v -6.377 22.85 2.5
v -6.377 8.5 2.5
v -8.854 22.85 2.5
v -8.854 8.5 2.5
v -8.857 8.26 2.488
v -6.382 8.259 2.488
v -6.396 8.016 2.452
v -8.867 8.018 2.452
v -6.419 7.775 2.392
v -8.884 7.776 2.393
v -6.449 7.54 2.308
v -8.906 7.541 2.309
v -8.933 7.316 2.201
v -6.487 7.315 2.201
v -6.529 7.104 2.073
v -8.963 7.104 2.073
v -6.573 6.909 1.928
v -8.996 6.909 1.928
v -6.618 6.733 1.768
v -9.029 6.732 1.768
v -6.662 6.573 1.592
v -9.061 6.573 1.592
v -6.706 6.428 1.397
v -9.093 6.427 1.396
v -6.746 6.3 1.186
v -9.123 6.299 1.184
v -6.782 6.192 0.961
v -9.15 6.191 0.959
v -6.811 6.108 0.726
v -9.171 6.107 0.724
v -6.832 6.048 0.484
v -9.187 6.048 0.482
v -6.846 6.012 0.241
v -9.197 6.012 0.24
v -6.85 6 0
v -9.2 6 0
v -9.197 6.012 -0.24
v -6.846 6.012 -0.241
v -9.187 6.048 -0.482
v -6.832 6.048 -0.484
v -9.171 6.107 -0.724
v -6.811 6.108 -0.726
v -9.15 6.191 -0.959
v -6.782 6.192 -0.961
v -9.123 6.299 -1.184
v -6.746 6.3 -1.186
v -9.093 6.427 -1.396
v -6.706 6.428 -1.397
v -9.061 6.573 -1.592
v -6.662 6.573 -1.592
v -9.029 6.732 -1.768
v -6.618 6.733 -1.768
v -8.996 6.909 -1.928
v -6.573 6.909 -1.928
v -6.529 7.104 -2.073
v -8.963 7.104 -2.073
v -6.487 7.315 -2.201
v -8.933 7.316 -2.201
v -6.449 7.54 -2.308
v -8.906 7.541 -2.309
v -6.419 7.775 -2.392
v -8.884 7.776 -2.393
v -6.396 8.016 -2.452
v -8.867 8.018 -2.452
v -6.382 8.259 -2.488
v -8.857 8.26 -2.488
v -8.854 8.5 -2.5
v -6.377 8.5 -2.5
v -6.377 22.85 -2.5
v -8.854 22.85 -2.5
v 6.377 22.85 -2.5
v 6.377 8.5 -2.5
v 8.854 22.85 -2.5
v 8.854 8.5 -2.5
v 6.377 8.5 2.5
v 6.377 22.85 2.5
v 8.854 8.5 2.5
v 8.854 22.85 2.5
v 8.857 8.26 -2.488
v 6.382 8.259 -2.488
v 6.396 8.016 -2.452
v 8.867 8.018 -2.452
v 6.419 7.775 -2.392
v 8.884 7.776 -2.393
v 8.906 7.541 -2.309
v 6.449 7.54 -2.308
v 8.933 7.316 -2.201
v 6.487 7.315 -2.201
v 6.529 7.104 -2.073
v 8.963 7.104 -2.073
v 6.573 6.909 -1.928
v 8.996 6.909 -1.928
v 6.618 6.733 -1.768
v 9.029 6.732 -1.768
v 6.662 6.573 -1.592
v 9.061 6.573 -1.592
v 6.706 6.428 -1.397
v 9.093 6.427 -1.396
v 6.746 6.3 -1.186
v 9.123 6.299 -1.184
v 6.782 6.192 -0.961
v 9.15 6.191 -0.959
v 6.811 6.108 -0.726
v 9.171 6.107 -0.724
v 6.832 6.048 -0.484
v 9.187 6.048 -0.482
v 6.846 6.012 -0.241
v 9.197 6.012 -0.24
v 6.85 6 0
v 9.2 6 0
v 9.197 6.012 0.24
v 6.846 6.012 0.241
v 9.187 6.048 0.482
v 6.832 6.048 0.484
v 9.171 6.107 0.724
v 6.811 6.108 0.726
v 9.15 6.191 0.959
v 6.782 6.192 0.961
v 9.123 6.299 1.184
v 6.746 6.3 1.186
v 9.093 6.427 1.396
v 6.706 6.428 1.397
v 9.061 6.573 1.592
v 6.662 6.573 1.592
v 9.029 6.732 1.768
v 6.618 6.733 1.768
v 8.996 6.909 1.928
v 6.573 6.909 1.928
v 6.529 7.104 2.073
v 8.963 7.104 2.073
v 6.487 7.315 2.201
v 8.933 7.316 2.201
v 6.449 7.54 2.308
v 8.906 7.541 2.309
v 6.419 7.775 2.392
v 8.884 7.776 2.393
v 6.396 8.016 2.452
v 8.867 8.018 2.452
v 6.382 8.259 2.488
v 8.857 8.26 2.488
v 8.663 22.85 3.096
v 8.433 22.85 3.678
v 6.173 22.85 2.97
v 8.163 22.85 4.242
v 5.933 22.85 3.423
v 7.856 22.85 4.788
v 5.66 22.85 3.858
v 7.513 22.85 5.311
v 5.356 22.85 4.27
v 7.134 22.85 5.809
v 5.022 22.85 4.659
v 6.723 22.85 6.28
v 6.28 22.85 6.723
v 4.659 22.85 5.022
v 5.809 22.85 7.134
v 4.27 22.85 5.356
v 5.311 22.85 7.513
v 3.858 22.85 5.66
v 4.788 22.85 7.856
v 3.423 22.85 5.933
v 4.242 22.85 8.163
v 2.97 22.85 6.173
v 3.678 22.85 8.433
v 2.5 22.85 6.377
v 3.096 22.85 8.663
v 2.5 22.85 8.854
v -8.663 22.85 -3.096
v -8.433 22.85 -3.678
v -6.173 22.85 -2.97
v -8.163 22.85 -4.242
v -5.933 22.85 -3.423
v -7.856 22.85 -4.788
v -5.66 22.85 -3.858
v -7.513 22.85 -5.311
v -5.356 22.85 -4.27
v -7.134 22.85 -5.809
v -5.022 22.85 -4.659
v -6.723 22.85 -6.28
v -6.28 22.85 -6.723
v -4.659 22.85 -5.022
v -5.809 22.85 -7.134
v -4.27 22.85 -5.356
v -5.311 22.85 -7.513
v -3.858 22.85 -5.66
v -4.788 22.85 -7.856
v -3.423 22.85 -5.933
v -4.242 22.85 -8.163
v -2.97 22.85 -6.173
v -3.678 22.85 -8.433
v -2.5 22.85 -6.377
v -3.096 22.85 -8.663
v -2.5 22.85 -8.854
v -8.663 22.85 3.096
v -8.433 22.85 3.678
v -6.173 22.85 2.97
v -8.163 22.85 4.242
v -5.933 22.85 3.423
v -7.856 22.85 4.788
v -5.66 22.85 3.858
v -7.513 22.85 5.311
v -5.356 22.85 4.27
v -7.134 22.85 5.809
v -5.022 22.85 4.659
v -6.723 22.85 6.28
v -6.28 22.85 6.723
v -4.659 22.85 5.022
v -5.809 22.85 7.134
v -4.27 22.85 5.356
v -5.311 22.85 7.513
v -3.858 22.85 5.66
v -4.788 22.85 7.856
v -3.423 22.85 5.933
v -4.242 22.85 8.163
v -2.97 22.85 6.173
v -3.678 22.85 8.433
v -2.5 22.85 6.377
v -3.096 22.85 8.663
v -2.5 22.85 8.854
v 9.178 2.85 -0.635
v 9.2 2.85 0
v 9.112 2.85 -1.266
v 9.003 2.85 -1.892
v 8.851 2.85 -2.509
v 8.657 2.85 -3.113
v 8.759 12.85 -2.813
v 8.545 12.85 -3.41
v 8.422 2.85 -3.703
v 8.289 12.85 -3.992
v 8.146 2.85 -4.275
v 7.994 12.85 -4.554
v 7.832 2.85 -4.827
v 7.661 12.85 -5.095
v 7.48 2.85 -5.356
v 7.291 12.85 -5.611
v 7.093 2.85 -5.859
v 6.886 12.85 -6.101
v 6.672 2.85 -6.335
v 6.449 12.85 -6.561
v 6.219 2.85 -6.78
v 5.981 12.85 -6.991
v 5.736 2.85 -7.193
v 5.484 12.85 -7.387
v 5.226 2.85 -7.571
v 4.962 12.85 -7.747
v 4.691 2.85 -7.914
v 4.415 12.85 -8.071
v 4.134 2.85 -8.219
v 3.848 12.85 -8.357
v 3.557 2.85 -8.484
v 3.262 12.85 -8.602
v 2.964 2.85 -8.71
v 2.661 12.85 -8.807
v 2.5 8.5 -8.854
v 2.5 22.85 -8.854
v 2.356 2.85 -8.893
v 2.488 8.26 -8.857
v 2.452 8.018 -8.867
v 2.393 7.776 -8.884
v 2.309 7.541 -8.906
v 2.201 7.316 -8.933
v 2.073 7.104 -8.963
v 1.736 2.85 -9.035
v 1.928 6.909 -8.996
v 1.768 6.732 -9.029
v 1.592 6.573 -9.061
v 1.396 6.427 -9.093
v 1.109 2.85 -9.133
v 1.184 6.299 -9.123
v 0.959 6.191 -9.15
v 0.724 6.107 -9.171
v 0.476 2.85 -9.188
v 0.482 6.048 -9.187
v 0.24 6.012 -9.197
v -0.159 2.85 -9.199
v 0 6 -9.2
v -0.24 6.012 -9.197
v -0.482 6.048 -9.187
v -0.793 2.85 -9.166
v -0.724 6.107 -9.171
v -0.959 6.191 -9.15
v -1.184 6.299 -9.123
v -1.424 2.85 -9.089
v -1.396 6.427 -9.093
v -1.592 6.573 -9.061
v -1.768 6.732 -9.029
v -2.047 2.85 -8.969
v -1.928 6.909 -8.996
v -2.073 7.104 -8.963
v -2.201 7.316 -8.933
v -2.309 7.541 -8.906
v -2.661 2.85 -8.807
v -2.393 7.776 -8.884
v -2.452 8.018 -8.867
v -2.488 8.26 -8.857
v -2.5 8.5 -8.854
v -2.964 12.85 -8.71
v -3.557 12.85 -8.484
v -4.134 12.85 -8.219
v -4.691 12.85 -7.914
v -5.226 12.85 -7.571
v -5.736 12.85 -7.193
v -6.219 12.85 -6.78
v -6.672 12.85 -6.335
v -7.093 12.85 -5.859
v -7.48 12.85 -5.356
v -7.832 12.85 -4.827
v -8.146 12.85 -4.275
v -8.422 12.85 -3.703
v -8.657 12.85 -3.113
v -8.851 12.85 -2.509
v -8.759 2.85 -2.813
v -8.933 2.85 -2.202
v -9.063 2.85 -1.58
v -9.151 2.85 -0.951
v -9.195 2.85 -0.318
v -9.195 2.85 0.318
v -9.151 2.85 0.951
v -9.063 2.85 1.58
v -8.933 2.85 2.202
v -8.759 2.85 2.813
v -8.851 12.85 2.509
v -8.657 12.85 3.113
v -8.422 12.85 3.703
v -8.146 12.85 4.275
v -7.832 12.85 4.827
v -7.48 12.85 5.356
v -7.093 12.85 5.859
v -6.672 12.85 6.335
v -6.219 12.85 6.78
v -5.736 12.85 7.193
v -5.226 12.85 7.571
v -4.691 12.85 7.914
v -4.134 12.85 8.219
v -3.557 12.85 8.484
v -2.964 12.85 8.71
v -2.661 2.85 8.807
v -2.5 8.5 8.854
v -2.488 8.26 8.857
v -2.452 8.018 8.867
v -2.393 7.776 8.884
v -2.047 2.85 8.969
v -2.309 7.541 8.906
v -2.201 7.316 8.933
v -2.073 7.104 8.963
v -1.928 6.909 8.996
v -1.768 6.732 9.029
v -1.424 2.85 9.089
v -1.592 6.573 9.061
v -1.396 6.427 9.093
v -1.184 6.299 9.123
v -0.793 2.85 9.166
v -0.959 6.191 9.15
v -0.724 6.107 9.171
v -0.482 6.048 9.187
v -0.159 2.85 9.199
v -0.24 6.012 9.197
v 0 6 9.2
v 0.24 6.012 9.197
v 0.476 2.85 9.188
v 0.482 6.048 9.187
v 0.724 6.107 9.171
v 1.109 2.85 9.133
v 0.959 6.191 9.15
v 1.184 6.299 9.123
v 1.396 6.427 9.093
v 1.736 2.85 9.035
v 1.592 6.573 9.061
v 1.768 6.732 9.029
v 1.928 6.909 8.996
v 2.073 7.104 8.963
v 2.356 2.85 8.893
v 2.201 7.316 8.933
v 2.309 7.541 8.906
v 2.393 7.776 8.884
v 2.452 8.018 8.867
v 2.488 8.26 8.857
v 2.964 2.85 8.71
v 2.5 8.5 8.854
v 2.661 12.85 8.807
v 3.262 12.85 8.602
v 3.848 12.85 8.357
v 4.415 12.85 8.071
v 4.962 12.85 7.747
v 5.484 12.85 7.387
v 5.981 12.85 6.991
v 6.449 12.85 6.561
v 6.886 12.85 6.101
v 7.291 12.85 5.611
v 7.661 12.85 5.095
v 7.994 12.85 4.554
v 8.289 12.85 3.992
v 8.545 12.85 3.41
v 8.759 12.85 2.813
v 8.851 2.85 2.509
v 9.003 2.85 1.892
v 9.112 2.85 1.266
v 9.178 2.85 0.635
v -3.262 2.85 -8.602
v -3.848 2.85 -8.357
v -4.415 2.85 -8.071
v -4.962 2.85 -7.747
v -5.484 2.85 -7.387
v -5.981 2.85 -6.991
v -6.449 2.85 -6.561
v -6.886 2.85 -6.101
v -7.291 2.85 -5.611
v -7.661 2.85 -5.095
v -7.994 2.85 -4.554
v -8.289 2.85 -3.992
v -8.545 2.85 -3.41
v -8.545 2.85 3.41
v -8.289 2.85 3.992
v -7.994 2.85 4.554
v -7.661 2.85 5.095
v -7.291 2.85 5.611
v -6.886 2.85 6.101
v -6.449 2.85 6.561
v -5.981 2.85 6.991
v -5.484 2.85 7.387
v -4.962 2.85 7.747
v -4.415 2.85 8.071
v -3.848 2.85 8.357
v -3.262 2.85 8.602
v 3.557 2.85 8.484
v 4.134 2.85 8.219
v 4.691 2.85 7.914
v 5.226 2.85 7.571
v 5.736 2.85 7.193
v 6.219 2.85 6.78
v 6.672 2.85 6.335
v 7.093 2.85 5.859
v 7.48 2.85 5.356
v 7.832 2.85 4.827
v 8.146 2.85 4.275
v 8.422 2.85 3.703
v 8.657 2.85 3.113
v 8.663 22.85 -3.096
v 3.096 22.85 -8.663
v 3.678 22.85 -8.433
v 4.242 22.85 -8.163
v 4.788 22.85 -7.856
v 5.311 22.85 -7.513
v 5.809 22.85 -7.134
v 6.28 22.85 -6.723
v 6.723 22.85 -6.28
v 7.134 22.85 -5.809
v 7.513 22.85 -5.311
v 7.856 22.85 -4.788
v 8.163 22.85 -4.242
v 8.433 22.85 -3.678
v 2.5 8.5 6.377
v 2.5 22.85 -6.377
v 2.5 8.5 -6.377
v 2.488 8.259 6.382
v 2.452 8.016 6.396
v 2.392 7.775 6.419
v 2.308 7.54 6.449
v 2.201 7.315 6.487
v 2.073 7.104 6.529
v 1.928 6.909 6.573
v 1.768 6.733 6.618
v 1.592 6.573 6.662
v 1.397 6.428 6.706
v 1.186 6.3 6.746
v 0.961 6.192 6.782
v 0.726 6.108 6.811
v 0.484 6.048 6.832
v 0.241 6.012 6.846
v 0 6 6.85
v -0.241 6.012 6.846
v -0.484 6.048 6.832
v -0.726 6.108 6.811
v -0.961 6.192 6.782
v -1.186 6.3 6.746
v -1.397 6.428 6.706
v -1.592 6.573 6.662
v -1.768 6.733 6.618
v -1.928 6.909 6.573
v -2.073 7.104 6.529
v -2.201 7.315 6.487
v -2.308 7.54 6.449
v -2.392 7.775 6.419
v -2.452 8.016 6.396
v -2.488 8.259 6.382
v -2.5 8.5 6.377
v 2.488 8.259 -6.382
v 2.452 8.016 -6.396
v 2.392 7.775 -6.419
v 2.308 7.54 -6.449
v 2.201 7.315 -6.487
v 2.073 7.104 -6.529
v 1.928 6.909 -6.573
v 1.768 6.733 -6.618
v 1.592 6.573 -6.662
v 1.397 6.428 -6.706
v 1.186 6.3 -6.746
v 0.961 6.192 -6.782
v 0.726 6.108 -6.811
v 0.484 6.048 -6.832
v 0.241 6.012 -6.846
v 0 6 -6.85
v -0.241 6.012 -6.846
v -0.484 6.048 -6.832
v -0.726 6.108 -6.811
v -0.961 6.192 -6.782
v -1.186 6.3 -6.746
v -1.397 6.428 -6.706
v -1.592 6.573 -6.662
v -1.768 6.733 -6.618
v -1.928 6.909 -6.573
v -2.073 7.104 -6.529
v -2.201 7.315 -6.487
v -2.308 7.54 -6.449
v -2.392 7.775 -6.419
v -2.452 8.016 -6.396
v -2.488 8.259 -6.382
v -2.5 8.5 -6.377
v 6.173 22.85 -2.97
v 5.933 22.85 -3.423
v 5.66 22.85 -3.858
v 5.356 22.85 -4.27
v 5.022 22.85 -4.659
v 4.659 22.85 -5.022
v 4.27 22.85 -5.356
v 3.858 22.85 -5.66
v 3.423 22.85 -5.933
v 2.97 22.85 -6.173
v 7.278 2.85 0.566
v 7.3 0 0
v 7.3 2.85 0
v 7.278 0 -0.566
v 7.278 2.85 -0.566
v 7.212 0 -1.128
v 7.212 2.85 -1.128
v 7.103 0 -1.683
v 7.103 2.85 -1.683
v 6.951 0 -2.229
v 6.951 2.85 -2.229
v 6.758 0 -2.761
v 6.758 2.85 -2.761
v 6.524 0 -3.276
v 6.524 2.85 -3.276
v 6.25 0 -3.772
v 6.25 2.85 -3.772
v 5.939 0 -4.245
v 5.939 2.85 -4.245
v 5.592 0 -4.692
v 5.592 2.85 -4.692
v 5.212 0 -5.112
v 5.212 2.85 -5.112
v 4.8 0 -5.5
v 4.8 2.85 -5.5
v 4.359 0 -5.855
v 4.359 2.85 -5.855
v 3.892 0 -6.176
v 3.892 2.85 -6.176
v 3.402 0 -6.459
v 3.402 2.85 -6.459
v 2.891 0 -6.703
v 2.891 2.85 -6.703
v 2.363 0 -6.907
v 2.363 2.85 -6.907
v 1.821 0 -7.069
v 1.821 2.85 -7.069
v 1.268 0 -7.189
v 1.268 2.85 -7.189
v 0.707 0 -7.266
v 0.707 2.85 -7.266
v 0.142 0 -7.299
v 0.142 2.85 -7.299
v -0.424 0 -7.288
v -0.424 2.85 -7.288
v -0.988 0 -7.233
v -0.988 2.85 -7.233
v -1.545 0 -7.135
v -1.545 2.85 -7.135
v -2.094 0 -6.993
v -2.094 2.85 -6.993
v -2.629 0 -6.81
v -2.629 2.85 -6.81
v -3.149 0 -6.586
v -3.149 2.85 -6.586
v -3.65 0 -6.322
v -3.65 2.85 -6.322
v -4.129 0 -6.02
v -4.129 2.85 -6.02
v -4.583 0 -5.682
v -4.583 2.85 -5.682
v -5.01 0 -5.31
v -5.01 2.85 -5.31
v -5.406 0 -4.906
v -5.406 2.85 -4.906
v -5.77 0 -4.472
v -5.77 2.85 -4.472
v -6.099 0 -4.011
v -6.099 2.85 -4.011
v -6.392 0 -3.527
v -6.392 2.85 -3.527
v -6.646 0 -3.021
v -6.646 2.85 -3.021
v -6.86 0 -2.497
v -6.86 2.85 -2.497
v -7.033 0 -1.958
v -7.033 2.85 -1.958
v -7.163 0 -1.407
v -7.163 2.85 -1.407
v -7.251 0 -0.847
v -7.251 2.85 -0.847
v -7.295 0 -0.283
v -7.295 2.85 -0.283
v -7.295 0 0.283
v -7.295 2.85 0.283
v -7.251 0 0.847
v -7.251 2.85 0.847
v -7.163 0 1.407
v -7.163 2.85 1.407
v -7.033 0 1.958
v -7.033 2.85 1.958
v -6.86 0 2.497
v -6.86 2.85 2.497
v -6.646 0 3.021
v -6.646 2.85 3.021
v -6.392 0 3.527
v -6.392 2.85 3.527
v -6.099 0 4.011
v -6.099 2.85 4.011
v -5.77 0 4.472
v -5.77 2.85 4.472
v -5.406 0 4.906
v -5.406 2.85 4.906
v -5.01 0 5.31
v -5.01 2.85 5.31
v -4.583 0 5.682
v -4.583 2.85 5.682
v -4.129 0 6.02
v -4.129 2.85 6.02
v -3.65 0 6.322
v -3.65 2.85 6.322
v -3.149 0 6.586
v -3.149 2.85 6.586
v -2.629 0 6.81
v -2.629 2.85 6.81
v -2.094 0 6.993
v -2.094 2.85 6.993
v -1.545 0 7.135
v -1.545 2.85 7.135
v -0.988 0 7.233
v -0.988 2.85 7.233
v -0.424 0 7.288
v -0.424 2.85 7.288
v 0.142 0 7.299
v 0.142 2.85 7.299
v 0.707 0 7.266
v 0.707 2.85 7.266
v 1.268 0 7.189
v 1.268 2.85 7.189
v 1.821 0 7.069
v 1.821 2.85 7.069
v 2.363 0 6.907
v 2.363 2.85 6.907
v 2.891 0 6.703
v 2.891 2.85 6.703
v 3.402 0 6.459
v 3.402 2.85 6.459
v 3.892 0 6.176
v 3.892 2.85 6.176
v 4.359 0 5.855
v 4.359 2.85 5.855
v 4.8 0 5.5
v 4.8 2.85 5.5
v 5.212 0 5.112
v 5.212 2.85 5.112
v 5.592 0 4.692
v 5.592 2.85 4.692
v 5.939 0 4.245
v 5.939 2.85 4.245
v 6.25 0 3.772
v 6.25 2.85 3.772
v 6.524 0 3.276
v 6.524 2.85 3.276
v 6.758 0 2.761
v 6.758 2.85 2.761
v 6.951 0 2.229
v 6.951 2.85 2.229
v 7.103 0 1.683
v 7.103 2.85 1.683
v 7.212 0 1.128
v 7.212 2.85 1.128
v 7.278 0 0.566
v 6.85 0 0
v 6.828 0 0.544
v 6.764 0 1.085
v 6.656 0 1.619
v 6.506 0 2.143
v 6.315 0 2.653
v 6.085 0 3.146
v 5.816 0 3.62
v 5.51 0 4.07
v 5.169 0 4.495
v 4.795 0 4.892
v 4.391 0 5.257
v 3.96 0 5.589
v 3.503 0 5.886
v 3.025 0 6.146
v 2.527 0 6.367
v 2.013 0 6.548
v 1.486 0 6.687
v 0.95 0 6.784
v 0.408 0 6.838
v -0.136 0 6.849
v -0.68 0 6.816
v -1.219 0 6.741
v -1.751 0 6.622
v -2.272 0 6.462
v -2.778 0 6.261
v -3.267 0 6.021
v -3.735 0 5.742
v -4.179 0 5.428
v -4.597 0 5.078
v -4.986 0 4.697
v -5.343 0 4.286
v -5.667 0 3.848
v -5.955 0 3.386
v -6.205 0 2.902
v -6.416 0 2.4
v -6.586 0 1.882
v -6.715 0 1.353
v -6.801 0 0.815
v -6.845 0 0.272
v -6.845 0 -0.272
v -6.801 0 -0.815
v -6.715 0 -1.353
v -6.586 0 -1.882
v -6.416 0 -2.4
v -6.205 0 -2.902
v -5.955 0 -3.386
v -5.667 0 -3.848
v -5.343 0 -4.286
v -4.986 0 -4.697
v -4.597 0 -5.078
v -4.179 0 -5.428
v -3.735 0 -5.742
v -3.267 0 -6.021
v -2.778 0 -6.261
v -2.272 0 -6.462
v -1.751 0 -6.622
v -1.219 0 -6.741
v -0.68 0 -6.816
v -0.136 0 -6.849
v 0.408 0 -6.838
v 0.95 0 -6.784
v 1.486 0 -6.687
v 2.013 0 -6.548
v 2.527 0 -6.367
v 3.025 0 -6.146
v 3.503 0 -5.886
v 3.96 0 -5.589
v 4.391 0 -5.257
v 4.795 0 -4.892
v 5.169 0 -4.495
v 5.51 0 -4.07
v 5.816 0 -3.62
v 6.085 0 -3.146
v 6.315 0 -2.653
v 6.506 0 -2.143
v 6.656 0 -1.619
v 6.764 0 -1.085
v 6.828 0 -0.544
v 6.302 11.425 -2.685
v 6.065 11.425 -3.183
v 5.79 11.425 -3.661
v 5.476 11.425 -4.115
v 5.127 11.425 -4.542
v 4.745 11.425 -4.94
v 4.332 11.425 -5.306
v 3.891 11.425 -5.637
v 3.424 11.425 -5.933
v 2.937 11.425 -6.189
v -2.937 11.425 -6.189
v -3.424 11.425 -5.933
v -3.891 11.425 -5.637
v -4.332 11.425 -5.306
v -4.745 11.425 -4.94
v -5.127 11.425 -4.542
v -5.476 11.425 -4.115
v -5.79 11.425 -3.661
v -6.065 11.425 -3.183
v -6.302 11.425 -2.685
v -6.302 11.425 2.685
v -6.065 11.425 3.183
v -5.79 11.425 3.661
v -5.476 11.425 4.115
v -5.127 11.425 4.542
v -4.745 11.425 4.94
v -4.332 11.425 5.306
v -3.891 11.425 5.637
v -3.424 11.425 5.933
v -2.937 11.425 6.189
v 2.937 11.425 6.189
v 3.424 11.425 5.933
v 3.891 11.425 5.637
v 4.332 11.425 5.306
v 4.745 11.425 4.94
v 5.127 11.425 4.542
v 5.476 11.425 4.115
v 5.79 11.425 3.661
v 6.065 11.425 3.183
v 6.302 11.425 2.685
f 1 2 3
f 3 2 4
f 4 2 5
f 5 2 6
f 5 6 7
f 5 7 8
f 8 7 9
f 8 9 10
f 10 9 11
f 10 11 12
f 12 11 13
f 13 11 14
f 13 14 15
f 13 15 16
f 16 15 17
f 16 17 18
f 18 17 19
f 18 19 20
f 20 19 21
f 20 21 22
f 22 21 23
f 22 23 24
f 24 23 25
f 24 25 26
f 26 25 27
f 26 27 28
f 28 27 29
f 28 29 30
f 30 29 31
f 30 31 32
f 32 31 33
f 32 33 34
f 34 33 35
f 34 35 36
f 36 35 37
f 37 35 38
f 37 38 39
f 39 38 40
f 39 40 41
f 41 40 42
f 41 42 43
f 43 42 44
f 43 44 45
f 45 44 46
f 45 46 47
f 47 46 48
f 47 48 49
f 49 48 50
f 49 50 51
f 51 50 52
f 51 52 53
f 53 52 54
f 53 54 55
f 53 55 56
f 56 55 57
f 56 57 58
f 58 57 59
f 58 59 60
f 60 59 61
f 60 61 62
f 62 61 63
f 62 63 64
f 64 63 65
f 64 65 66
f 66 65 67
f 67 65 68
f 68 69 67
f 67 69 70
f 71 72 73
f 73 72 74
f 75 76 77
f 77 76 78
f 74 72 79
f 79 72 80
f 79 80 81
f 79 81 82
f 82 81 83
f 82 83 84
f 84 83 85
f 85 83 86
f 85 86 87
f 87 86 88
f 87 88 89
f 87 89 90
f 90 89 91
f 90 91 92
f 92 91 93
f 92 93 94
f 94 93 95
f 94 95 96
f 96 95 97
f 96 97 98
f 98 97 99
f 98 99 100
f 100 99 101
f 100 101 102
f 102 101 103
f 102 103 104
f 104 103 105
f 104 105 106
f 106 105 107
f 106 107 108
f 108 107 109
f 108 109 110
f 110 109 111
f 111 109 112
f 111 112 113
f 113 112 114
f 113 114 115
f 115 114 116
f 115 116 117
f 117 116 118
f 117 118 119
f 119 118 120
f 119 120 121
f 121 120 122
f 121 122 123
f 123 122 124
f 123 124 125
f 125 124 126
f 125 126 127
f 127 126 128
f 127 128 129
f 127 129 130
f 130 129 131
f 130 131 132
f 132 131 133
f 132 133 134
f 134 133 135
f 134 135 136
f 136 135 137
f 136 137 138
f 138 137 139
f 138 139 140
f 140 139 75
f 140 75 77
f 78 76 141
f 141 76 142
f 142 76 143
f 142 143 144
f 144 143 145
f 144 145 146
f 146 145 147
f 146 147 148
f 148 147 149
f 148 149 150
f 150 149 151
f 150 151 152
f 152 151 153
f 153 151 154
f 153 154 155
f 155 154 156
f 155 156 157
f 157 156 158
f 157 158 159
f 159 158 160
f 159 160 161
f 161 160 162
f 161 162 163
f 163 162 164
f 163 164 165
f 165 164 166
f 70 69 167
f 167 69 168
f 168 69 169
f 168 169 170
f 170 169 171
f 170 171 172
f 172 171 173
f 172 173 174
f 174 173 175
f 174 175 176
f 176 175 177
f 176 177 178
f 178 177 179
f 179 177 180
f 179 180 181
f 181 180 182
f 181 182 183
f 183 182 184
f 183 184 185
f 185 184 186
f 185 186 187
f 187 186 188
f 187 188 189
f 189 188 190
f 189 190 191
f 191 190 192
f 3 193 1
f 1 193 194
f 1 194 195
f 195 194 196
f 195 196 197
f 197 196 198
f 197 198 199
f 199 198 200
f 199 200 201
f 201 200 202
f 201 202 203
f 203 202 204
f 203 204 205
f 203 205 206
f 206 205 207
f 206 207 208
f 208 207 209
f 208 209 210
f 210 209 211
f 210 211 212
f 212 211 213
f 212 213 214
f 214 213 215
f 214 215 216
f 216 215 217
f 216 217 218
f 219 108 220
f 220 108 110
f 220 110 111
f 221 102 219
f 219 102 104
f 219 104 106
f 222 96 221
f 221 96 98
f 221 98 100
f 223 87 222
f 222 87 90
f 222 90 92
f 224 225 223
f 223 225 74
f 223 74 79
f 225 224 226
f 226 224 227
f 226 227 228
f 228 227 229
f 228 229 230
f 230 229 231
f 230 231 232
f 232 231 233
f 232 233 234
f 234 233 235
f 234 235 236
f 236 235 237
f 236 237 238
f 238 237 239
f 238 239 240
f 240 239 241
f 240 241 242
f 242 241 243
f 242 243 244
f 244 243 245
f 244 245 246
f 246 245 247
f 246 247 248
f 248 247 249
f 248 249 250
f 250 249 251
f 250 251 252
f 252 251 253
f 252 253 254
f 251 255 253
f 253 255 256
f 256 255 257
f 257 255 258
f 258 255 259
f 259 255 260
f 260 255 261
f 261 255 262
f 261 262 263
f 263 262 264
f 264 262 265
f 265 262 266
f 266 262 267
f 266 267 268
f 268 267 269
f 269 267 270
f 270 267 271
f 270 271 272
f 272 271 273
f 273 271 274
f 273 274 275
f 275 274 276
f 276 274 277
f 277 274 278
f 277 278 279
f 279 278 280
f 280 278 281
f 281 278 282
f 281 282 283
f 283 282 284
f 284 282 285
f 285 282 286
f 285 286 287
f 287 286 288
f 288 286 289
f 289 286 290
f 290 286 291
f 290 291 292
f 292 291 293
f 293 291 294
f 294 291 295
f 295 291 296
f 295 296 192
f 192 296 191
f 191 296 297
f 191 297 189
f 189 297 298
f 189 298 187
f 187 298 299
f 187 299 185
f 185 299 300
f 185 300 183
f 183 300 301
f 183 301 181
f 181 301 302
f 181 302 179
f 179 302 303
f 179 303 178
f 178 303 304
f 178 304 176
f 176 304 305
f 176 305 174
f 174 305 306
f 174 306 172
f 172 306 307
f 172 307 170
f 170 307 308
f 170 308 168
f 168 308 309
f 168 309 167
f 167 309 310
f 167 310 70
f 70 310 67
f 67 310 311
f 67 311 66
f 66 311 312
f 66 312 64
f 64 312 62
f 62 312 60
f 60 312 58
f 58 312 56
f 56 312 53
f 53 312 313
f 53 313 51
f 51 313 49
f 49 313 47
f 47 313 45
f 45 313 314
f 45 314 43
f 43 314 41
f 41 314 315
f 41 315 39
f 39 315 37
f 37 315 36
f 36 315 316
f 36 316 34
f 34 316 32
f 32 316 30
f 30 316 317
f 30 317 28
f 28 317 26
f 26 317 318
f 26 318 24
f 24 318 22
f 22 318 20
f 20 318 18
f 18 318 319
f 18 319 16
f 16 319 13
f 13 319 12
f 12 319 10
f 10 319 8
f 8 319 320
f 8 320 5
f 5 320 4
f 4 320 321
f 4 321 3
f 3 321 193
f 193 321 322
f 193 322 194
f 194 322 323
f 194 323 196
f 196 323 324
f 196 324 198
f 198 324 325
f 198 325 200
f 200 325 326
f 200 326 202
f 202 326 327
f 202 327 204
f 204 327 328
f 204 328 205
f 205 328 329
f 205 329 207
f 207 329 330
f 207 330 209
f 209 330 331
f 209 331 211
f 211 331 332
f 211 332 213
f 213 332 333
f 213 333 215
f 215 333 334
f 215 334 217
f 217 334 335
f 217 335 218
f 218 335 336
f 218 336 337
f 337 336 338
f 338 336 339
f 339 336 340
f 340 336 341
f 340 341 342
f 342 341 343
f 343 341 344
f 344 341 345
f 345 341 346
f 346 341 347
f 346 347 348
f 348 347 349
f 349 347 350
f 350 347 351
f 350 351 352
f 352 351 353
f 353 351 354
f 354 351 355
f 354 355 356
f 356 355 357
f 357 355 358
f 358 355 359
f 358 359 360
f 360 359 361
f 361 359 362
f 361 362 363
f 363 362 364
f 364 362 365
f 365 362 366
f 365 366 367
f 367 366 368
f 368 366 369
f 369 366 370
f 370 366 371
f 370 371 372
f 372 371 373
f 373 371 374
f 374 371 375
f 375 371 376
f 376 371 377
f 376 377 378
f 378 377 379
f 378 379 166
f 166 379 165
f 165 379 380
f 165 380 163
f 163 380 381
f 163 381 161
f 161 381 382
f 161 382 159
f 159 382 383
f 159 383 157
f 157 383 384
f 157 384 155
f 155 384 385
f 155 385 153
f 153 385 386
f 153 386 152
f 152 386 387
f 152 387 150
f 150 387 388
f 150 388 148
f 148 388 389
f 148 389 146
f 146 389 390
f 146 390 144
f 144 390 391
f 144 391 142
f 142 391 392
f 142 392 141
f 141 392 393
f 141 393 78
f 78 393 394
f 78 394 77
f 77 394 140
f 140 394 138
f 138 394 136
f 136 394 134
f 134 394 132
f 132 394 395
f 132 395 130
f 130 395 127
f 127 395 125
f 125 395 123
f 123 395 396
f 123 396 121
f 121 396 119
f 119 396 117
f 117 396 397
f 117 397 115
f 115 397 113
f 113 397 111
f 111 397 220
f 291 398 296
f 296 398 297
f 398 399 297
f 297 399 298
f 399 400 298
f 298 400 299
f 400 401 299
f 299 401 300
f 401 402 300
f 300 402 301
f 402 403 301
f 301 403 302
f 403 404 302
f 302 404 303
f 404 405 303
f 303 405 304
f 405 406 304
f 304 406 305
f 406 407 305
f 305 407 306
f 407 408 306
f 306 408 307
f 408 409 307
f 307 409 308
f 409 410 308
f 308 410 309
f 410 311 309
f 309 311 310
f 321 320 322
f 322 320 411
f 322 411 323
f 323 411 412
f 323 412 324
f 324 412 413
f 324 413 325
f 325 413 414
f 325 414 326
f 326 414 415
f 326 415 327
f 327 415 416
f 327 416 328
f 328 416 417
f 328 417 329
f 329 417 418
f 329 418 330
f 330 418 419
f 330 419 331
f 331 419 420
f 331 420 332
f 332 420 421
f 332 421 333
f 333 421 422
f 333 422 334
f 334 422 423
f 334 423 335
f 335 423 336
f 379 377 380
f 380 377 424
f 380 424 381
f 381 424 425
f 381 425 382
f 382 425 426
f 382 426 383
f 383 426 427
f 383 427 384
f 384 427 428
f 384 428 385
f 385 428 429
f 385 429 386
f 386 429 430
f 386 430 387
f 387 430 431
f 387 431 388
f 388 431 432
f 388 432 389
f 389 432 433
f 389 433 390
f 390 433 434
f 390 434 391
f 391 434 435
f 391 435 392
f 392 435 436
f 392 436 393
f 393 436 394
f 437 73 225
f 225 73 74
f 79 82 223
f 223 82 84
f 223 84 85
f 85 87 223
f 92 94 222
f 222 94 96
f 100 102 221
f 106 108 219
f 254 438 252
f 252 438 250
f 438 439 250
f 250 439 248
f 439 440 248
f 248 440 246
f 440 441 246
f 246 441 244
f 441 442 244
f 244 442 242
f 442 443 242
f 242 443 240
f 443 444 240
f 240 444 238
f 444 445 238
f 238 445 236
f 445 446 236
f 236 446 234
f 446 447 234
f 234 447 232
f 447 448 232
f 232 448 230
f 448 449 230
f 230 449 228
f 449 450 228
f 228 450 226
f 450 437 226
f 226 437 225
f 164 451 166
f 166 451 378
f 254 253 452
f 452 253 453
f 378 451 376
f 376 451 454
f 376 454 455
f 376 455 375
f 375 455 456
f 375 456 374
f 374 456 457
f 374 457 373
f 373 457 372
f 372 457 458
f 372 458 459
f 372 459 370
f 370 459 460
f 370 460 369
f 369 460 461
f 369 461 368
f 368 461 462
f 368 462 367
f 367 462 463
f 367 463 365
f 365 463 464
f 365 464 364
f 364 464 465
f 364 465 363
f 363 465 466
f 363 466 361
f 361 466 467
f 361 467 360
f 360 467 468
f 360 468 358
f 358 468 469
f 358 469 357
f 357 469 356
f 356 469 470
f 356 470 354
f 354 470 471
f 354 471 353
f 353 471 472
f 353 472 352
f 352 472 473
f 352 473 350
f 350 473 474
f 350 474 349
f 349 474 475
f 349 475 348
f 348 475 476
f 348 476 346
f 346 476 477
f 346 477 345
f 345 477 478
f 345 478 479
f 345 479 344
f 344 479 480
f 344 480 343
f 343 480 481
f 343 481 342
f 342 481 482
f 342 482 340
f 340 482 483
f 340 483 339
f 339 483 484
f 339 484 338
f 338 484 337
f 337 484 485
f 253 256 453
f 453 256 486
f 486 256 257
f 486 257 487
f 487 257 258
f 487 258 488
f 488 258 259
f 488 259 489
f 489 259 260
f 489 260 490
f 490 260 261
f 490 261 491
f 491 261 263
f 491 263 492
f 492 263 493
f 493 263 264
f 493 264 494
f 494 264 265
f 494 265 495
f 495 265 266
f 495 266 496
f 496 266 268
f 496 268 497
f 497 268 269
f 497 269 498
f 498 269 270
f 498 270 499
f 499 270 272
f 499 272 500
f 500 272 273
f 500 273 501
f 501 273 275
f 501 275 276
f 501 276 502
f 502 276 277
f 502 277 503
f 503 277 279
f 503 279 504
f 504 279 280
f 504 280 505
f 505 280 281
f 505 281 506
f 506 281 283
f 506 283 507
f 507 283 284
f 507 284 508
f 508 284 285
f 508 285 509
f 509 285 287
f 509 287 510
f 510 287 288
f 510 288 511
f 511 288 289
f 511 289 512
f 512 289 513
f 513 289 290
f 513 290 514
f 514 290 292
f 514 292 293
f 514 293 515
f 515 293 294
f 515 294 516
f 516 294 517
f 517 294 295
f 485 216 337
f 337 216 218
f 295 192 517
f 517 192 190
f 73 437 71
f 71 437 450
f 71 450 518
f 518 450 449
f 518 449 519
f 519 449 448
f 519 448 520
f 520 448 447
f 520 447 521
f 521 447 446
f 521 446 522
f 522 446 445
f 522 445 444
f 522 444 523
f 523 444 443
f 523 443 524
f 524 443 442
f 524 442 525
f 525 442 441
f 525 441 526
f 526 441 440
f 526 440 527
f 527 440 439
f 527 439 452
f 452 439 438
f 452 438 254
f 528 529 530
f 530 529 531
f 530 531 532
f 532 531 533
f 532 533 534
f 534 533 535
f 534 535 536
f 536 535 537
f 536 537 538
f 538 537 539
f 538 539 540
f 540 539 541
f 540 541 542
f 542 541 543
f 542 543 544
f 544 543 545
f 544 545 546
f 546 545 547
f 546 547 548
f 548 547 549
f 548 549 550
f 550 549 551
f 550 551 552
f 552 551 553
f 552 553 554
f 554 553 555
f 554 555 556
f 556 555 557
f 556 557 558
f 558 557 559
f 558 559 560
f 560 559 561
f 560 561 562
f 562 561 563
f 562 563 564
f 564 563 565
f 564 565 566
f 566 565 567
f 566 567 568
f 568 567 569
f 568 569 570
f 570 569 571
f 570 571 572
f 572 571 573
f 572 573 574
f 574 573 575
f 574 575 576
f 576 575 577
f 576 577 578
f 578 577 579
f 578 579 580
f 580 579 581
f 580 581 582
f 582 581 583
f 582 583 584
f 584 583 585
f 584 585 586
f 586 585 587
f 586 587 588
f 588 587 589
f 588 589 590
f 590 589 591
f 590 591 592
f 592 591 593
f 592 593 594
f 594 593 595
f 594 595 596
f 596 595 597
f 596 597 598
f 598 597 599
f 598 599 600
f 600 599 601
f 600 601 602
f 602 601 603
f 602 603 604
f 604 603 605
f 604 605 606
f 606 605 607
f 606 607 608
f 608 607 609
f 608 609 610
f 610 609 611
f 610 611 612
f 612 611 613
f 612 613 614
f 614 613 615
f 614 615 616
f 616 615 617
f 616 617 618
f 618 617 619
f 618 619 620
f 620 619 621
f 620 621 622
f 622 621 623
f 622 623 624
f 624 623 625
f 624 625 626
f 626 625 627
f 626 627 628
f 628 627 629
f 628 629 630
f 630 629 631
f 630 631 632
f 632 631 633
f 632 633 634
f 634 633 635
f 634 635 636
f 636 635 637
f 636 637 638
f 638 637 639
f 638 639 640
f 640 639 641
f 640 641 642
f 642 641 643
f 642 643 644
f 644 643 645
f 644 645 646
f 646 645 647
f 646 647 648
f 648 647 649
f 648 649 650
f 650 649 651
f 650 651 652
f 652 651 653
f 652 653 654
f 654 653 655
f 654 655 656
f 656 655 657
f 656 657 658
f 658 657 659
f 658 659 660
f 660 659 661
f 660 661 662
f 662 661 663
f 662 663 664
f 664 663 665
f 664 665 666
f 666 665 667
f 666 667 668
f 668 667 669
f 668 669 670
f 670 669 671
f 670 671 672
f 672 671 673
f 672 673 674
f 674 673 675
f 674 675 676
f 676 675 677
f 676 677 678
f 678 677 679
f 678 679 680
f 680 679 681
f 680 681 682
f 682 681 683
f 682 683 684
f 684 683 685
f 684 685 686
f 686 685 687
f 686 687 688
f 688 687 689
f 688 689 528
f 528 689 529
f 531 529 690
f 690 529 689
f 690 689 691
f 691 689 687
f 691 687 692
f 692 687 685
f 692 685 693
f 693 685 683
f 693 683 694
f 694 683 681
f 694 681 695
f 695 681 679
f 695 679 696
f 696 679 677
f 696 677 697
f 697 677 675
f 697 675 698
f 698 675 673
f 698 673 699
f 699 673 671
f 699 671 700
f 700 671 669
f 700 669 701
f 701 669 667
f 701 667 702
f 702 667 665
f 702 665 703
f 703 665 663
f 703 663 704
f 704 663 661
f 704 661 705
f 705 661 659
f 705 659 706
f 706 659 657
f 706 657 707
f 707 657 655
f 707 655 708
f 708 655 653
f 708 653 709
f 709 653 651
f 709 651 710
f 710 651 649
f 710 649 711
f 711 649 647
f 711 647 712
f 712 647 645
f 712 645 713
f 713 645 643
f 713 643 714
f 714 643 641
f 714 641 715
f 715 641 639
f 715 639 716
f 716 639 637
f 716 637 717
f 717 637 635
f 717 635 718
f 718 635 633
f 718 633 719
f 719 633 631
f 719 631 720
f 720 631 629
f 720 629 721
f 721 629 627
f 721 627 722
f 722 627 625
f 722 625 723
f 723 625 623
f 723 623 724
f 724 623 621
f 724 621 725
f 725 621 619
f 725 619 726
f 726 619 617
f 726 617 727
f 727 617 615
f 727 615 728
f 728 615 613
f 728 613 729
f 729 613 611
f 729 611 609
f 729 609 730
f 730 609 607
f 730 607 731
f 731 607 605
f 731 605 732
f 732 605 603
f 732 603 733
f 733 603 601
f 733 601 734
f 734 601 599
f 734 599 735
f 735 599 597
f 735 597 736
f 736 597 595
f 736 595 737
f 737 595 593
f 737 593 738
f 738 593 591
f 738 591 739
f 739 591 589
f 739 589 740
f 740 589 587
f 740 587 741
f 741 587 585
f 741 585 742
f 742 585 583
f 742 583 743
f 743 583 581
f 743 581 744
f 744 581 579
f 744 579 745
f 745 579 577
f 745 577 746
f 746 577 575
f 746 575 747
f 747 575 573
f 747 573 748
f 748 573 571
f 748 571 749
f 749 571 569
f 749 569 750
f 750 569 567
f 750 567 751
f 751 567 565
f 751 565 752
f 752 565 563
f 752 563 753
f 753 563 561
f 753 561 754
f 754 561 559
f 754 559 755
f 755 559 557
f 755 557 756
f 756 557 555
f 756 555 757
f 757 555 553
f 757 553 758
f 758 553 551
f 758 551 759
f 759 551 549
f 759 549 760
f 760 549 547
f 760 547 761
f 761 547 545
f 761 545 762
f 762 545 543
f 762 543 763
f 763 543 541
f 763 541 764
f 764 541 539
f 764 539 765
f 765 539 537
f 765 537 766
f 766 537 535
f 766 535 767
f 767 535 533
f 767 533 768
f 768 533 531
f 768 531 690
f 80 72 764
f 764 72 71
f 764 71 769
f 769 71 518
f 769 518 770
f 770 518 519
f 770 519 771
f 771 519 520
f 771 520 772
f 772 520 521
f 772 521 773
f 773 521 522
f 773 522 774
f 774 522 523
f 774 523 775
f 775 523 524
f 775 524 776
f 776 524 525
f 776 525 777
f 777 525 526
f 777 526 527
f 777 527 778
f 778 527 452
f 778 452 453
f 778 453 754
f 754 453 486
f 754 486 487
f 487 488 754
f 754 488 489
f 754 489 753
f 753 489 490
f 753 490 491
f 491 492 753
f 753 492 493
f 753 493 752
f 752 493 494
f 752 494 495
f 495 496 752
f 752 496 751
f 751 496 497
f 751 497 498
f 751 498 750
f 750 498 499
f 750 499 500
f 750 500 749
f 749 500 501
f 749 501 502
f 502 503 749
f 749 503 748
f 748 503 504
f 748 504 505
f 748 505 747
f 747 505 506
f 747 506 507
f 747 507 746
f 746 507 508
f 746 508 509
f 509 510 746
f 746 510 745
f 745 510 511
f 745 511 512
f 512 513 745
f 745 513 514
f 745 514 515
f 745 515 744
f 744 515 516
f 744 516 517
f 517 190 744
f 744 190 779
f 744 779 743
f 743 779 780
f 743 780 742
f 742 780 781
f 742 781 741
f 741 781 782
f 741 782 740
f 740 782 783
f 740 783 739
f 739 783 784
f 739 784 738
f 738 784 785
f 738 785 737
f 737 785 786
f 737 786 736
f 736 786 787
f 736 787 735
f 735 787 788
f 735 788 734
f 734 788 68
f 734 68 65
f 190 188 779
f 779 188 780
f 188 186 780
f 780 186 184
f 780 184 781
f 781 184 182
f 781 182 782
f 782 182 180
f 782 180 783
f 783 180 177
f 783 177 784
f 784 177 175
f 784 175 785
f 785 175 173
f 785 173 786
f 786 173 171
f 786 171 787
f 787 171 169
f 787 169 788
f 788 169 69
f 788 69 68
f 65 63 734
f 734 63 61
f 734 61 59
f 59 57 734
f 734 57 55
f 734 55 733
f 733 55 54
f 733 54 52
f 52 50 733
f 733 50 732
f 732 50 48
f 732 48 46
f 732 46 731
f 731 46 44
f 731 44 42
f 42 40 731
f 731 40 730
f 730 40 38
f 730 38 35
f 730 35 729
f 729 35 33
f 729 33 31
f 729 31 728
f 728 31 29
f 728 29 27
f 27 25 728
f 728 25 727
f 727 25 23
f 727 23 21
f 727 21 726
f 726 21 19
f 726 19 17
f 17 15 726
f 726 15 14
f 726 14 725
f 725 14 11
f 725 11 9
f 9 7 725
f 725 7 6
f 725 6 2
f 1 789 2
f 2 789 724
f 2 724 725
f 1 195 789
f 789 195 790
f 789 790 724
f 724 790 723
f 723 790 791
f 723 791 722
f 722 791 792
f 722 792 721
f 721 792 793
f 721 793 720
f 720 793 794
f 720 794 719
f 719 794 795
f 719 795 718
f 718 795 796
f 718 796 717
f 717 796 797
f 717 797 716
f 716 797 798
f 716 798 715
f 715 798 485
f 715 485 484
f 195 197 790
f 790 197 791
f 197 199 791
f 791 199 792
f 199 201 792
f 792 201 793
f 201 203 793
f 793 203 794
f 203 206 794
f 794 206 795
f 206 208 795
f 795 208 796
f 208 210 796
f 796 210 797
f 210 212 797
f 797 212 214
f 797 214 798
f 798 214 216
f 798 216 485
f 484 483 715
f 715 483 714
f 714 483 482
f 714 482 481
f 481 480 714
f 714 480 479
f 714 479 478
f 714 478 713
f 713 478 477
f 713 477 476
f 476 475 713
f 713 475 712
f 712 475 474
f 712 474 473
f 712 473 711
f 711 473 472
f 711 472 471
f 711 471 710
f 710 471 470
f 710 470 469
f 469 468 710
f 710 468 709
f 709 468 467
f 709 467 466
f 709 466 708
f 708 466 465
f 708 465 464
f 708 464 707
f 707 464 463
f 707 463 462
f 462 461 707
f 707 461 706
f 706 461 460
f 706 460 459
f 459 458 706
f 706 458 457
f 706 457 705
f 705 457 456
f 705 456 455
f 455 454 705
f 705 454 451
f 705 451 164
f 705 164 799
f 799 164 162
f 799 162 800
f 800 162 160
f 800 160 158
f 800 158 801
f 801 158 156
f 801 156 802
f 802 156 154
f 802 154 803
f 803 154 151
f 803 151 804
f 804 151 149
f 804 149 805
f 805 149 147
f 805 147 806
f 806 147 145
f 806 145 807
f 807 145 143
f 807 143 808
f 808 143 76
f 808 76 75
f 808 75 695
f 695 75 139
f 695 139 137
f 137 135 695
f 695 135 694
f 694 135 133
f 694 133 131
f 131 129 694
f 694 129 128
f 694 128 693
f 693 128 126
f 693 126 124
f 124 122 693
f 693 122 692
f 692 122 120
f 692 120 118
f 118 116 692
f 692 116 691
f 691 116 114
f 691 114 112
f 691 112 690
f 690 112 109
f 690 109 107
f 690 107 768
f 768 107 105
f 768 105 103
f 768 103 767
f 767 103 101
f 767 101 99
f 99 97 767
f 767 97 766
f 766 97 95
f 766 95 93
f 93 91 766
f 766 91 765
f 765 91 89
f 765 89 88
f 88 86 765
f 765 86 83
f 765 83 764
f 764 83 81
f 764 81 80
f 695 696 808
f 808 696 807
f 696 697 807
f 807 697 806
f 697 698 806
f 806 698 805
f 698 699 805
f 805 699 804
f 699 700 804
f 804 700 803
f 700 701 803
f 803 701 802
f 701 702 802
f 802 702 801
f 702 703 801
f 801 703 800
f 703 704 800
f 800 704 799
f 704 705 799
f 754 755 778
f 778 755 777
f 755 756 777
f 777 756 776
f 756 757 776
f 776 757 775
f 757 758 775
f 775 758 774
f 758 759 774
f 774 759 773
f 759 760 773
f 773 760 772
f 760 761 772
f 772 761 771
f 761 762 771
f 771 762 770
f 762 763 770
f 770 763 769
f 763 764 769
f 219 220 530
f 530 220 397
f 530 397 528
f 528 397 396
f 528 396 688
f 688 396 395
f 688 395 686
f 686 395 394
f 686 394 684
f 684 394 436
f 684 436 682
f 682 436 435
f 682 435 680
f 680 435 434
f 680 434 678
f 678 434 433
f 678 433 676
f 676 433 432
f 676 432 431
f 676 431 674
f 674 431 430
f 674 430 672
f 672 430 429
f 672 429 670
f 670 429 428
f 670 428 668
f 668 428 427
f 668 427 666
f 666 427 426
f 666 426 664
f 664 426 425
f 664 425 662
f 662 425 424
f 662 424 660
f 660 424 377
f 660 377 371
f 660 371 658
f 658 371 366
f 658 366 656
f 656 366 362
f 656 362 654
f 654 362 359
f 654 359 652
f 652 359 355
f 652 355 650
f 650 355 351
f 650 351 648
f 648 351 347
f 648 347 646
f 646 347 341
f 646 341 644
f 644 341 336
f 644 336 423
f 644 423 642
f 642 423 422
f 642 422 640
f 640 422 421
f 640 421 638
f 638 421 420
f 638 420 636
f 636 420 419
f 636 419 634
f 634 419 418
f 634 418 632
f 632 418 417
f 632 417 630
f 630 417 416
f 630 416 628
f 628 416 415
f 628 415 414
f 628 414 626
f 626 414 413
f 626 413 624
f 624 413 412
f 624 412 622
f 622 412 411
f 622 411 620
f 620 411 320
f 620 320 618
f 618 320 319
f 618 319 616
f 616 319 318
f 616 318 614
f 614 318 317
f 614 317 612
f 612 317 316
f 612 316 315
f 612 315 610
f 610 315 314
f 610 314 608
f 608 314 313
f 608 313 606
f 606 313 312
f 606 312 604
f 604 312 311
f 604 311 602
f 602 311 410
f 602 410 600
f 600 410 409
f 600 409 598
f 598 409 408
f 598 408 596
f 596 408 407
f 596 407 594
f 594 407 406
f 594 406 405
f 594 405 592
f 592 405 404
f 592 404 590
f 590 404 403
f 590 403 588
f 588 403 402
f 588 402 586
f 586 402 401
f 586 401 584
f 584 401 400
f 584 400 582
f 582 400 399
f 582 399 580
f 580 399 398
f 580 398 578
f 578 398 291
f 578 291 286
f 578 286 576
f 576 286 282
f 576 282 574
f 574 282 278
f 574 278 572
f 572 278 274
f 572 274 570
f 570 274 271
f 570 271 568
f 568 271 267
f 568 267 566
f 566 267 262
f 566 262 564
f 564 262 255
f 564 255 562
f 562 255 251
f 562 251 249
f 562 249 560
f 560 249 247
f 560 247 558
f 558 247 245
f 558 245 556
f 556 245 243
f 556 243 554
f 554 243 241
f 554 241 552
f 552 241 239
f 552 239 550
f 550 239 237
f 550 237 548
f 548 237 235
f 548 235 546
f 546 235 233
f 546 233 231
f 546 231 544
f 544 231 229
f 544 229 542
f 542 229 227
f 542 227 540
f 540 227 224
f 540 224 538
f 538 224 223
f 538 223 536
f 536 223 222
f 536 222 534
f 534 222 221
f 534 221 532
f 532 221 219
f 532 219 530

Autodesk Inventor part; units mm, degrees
ref_plane "XZ Plane" through (0, 0, 0) normal (0, 1, 0) x (-1, 0, 0)
sketch "Esboço1" plane through (0, 0, 0) normal (0, 0, 1) x (1, 0, 0)
  line L0 (0, 0) -> (7.3, 0)
  line L1 (7.3, 0) -> (7.3, 2.85)
  line L2 (7.3, 2.85) -> (9.2, 2.85)
  line L3 (0, 22.85) -> (0, 0)
  line L4 (9.2, 2.85) -> (9.2, 6.85)
  line L5 (6.85, 0) -> (6.85, 22.85)
  line L6 (9.2, 6.85) -> (9.2, 22.85)
  line L7 (9.2, 6.85) -> (9.2, 6.85)
  line L8 (9.2, 22.85) -> (0, 22.85)
  dimension "d0" = 7.3
  dimension "d1" = 2.85
  dimension "d4" = 4
  dimension "d7" = 9.2
  dimension "d11" = 2.35
  dimension "d12" = 9.2
  dimension "d24" = 16
revolve "Revolução1" add sketch "Esboço1" angle 360 about axis through (0, 22.85, 0) along (0, -1, 0) contours L5 L8 L6 L4 L2 L1 L0
ref_plane "Plano de trabalho1" through (0, 12.85, 9.2) normal (0, 0, 1) x (1, 0, 0)
sketch "Esboço3" plane through (0, 12.85, 9.2) normal (0, 0, 1) x (1, 0, 0)
  line L0 (0, -12.85) -> (0, -6.85)
  line L1 (-9.2, 10) -> (9.2, 10) projected
  line L2 (0, -6.85) -> (0, -4.35)
  arc A0 (-2.5, -4.35) -> (2.5, -4.35) centre (0, -4.35) ccw
  line L3 (2.5, -4.35) -> (2.5, 10)
  line L4 (-2.5, -4.35) -> (-2.5, 10)
  point P0 (-2, 10)
  point P1 (2, 10)
  dimension "d16" = 6
  dimension "d25" = 2.5
ref_plane "Plano de trabalho2" through (-9.2, 12.85, 0) normal (1, 0, 0) x (0, 1, 0)
sketch "Esboço4" plane through (-9.2, 12.85, 0) normal (1, 0, 0) x (0, 1, 0)
  line L0 (-12.85, 0) -> (-6.85, 0)
  line L1 (10, 0) -> (10, 0) projected
  line L2 (10, -2) -> (10, 2)
  line L3 (10, 0) -> (10, 0) projected
  arc A0 (-4.35, 2.5) -> (-4.35, -2.5) centre (-4.35, 0) ccw
  line L4 (-4.35, 2.5) -> (10, 2.5)
  line L5 (-4.35, -2.5) -> (10, -2.5)
  line L6 (10, -2.5) -> (10, 2.5)
  dimension "d20" = 6
extrude "Extrusão3" cut sketch "Esboço3" against normal blind 20
extrude "Extrusão4" cut sketch "Esboço4" along normal blind 20
properties part number "trava_botao_3DPrint"
